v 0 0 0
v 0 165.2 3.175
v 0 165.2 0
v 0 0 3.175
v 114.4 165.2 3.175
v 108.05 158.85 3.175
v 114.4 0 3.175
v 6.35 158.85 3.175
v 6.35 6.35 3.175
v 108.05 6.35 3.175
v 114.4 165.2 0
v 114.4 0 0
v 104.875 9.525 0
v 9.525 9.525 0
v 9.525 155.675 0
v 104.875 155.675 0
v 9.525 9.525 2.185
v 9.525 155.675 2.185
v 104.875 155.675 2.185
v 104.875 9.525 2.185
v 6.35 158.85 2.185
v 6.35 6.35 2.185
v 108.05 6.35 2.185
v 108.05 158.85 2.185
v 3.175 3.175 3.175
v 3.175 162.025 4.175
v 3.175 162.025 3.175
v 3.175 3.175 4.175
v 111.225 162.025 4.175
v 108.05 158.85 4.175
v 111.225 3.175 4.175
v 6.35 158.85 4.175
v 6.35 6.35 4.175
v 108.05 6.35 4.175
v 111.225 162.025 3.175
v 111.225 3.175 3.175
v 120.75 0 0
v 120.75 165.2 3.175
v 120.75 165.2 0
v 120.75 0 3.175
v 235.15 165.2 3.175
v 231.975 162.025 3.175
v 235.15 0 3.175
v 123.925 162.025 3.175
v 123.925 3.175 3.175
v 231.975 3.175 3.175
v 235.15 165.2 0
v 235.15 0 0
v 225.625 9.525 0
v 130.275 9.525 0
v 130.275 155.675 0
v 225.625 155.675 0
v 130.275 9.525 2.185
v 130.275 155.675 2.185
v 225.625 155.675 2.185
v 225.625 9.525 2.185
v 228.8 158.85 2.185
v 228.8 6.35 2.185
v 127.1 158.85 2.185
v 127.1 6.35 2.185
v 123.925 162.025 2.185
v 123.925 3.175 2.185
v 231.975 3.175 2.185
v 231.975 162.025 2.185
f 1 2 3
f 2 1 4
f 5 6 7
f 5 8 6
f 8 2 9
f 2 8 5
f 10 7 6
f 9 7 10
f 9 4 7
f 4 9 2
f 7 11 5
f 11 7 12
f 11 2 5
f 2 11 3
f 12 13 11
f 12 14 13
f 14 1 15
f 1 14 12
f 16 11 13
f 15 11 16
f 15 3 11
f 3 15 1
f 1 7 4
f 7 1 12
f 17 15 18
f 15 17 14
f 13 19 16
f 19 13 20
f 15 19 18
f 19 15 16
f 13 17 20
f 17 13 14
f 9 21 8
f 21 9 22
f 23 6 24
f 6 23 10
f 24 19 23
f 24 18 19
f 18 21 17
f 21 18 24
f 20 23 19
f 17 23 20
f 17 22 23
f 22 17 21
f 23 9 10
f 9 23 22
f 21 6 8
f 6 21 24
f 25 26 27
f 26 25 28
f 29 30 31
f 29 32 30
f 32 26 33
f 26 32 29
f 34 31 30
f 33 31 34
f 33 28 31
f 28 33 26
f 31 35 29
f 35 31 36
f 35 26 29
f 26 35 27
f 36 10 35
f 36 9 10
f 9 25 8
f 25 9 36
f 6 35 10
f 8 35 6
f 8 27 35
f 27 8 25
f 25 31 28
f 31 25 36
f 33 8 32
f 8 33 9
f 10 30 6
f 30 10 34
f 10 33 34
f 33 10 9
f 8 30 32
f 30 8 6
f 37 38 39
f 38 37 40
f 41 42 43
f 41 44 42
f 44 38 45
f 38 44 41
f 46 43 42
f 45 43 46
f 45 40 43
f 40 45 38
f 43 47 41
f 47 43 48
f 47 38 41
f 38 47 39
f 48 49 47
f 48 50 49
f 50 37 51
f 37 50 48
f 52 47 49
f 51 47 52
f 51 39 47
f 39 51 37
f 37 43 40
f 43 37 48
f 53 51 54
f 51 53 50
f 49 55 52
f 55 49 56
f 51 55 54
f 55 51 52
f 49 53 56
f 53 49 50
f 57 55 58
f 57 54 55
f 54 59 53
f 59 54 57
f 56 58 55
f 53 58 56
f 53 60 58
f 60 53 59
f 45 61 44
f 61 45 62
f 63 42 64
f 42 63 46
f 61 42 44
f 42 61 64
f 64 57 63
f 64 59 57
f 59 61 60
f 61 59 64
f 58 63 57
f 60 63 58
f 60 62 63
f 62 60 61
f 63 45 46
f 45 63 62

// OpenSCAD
// file: constants.scad
INCH = 25.4;
CUBE_SIZE = 300;
CEIL_CLEARANCE = 100;
NUM_PHONES = 6;


PANE_WIDTH = 4 * INCH + 0.1;
PANE_HEIGHT = 6 * INCH + 0.1;
PANE_THICKNESS = 2;

FRAME_PADDING = INCH / 4;

FRAME_WIDTH = PANE_WIDTH + 2 * FRAME_PADDING;
FRAME_HEIGHT = PANE_HEIGHT + 2 * FRAME_PADDING;
FRAME_THICKNESS = INCH / 4;


PHONE_HEIGHT = 147.8;
PHONE_WIDTH = 71.9;
PHONE_DEPTH = 9.1;
PHONE_SCREEN_TOP = 19; //wrt case top
PHONE_SCREEN_HEIGHT = 110;
PHONE_SCREEN_WIDTH = 68;
PHONE_LENS_DIA = 11.85;
PHONE_LENS_OFFSET_LEFT = 3;
PHONE_LENS_OFFSET_TOP = 3.65;
PHONE_LENS_FIELD_OF_VIEW = 71;
PHONE_POWER_BUTTON_TOP = 52;

CASE_THICKNESS = 1.5;
WALL_THICKNESS = 3;
CASE_HEIGHT = PHONE_HEIGHT + 2 * WALL_THICKNESS;
CASE_WIDTH = PHONE_WIDTH + 2 * WALL_THICKNESS;
CASE_DEPTH = PHONE_DEPTH + 2 * CASE_THICKNESS;

CASE_ANCHOR_OFFSET = 14;
CASE_ANCHOR_POINTS = [
  [0, CASE_ANCHOR_OFFSET, 0],
  [0, CASE_HEIGHT - CASE_ANCHOR_OFFSET, 0],
  [CASE_WIDTH - WALL_THICKNESS, PHONE_HEIGHT - CASE_ANCHOR_OFFSET, 0],
  [CASE_WIDTH - WALL_THICKNESS, CASE_ANCHOR_OFFSET, 0]
];

PANE_ANCHOR_OFFSET = 0;
PANE_ANCHOR_POINTS = [
  [0, PANE_ANCHOR_OFFSET, 0],
  [0, PANE_HEIGHT - PANE_ANCHOR_OFFSET, 0],
  [PANE_WIDTH, PANE_HEIGHT - PANE_ANCHOR_OFFSET, 0],
  [PANE_WIDTH, PANE_ANCHOR_OFFSET, 0]
];


d = 0.01;
d2 = 2 * d;
wiggle = 1;

POSITIONS = [
  [ [134.648, 225.704, 99.3686],	 [49.3451, 105.663, 224.724] ],
  [ [297.307, 196.699, 265.857],	 [99.3866, 174.719, 148.235] ],
  [ [309.159, 98.7394, 312.317],	 [37.2874, 28.2925, 228.506] ],
  [ [314.855, 21.4972, 279.288],	 [158.367, 170.535, 146.508] ],
  [ [171.605, 174.204, 309.768],	 [118.408, 138.852, 74.9138] ]
];

DRAW_RANDOM = false;
// main file
include <constants.scad>

FRAME_INSET = INCH / 8;
TONGUE_THICKNESS = PANE_THICKNESS / 2;

module tongue(width = INCH / 8) {
  difference() {
    translate([width, width, 0])
      cube([FRAME_WIDTH - 2 * width, FRAME_HEIGHT -  2 * width, TONGUE_THICKNESS]);
    translate([FRAME_PADDING, FRAME_PADDING, -d])
      cube([PANE_WIDTH, PANE_HEIGHT, TONGUE_THICKNESS + d2]);
  }
}

module frame_half() {
  difference() {
    cube([FRAME_WIDTH, FRAME_HEIGHT, FRAME_THICKNESS / 2]);
    translate([FRAME_PADDING + FRAME_INSET, FRAME_PADDING + FRAME_INSET, -d])
      cube([
        PANE_WIDTH - 2 * FRAME_INSET,
        PANE_HEIGHT - 2 * FRAME_INSET,
        FRAME_THICKNESS / 2 + d2
      ]);
      translate([FRAME_PADDING, FRAME_PADDING, FRAME_THICKNESS / 2 - PANE_THICKNESS / 2 + d])
        cube([PANE_WIDTH, PANE_HEIGHT, PANE_THICKNESS / 2]);
  }
}

frame_half();
translate([0, 0, FRAME_THICKNESS/2])
  tongue();

translate([FRAME_WIDTH + FRAME_PADDING, 0, 0])
  difference() {
    frame_half();
    translate([0, 0, FRAME_THICKNESS / 2 - TONGUE_THICKNESS + d])
      tongue();
  }
